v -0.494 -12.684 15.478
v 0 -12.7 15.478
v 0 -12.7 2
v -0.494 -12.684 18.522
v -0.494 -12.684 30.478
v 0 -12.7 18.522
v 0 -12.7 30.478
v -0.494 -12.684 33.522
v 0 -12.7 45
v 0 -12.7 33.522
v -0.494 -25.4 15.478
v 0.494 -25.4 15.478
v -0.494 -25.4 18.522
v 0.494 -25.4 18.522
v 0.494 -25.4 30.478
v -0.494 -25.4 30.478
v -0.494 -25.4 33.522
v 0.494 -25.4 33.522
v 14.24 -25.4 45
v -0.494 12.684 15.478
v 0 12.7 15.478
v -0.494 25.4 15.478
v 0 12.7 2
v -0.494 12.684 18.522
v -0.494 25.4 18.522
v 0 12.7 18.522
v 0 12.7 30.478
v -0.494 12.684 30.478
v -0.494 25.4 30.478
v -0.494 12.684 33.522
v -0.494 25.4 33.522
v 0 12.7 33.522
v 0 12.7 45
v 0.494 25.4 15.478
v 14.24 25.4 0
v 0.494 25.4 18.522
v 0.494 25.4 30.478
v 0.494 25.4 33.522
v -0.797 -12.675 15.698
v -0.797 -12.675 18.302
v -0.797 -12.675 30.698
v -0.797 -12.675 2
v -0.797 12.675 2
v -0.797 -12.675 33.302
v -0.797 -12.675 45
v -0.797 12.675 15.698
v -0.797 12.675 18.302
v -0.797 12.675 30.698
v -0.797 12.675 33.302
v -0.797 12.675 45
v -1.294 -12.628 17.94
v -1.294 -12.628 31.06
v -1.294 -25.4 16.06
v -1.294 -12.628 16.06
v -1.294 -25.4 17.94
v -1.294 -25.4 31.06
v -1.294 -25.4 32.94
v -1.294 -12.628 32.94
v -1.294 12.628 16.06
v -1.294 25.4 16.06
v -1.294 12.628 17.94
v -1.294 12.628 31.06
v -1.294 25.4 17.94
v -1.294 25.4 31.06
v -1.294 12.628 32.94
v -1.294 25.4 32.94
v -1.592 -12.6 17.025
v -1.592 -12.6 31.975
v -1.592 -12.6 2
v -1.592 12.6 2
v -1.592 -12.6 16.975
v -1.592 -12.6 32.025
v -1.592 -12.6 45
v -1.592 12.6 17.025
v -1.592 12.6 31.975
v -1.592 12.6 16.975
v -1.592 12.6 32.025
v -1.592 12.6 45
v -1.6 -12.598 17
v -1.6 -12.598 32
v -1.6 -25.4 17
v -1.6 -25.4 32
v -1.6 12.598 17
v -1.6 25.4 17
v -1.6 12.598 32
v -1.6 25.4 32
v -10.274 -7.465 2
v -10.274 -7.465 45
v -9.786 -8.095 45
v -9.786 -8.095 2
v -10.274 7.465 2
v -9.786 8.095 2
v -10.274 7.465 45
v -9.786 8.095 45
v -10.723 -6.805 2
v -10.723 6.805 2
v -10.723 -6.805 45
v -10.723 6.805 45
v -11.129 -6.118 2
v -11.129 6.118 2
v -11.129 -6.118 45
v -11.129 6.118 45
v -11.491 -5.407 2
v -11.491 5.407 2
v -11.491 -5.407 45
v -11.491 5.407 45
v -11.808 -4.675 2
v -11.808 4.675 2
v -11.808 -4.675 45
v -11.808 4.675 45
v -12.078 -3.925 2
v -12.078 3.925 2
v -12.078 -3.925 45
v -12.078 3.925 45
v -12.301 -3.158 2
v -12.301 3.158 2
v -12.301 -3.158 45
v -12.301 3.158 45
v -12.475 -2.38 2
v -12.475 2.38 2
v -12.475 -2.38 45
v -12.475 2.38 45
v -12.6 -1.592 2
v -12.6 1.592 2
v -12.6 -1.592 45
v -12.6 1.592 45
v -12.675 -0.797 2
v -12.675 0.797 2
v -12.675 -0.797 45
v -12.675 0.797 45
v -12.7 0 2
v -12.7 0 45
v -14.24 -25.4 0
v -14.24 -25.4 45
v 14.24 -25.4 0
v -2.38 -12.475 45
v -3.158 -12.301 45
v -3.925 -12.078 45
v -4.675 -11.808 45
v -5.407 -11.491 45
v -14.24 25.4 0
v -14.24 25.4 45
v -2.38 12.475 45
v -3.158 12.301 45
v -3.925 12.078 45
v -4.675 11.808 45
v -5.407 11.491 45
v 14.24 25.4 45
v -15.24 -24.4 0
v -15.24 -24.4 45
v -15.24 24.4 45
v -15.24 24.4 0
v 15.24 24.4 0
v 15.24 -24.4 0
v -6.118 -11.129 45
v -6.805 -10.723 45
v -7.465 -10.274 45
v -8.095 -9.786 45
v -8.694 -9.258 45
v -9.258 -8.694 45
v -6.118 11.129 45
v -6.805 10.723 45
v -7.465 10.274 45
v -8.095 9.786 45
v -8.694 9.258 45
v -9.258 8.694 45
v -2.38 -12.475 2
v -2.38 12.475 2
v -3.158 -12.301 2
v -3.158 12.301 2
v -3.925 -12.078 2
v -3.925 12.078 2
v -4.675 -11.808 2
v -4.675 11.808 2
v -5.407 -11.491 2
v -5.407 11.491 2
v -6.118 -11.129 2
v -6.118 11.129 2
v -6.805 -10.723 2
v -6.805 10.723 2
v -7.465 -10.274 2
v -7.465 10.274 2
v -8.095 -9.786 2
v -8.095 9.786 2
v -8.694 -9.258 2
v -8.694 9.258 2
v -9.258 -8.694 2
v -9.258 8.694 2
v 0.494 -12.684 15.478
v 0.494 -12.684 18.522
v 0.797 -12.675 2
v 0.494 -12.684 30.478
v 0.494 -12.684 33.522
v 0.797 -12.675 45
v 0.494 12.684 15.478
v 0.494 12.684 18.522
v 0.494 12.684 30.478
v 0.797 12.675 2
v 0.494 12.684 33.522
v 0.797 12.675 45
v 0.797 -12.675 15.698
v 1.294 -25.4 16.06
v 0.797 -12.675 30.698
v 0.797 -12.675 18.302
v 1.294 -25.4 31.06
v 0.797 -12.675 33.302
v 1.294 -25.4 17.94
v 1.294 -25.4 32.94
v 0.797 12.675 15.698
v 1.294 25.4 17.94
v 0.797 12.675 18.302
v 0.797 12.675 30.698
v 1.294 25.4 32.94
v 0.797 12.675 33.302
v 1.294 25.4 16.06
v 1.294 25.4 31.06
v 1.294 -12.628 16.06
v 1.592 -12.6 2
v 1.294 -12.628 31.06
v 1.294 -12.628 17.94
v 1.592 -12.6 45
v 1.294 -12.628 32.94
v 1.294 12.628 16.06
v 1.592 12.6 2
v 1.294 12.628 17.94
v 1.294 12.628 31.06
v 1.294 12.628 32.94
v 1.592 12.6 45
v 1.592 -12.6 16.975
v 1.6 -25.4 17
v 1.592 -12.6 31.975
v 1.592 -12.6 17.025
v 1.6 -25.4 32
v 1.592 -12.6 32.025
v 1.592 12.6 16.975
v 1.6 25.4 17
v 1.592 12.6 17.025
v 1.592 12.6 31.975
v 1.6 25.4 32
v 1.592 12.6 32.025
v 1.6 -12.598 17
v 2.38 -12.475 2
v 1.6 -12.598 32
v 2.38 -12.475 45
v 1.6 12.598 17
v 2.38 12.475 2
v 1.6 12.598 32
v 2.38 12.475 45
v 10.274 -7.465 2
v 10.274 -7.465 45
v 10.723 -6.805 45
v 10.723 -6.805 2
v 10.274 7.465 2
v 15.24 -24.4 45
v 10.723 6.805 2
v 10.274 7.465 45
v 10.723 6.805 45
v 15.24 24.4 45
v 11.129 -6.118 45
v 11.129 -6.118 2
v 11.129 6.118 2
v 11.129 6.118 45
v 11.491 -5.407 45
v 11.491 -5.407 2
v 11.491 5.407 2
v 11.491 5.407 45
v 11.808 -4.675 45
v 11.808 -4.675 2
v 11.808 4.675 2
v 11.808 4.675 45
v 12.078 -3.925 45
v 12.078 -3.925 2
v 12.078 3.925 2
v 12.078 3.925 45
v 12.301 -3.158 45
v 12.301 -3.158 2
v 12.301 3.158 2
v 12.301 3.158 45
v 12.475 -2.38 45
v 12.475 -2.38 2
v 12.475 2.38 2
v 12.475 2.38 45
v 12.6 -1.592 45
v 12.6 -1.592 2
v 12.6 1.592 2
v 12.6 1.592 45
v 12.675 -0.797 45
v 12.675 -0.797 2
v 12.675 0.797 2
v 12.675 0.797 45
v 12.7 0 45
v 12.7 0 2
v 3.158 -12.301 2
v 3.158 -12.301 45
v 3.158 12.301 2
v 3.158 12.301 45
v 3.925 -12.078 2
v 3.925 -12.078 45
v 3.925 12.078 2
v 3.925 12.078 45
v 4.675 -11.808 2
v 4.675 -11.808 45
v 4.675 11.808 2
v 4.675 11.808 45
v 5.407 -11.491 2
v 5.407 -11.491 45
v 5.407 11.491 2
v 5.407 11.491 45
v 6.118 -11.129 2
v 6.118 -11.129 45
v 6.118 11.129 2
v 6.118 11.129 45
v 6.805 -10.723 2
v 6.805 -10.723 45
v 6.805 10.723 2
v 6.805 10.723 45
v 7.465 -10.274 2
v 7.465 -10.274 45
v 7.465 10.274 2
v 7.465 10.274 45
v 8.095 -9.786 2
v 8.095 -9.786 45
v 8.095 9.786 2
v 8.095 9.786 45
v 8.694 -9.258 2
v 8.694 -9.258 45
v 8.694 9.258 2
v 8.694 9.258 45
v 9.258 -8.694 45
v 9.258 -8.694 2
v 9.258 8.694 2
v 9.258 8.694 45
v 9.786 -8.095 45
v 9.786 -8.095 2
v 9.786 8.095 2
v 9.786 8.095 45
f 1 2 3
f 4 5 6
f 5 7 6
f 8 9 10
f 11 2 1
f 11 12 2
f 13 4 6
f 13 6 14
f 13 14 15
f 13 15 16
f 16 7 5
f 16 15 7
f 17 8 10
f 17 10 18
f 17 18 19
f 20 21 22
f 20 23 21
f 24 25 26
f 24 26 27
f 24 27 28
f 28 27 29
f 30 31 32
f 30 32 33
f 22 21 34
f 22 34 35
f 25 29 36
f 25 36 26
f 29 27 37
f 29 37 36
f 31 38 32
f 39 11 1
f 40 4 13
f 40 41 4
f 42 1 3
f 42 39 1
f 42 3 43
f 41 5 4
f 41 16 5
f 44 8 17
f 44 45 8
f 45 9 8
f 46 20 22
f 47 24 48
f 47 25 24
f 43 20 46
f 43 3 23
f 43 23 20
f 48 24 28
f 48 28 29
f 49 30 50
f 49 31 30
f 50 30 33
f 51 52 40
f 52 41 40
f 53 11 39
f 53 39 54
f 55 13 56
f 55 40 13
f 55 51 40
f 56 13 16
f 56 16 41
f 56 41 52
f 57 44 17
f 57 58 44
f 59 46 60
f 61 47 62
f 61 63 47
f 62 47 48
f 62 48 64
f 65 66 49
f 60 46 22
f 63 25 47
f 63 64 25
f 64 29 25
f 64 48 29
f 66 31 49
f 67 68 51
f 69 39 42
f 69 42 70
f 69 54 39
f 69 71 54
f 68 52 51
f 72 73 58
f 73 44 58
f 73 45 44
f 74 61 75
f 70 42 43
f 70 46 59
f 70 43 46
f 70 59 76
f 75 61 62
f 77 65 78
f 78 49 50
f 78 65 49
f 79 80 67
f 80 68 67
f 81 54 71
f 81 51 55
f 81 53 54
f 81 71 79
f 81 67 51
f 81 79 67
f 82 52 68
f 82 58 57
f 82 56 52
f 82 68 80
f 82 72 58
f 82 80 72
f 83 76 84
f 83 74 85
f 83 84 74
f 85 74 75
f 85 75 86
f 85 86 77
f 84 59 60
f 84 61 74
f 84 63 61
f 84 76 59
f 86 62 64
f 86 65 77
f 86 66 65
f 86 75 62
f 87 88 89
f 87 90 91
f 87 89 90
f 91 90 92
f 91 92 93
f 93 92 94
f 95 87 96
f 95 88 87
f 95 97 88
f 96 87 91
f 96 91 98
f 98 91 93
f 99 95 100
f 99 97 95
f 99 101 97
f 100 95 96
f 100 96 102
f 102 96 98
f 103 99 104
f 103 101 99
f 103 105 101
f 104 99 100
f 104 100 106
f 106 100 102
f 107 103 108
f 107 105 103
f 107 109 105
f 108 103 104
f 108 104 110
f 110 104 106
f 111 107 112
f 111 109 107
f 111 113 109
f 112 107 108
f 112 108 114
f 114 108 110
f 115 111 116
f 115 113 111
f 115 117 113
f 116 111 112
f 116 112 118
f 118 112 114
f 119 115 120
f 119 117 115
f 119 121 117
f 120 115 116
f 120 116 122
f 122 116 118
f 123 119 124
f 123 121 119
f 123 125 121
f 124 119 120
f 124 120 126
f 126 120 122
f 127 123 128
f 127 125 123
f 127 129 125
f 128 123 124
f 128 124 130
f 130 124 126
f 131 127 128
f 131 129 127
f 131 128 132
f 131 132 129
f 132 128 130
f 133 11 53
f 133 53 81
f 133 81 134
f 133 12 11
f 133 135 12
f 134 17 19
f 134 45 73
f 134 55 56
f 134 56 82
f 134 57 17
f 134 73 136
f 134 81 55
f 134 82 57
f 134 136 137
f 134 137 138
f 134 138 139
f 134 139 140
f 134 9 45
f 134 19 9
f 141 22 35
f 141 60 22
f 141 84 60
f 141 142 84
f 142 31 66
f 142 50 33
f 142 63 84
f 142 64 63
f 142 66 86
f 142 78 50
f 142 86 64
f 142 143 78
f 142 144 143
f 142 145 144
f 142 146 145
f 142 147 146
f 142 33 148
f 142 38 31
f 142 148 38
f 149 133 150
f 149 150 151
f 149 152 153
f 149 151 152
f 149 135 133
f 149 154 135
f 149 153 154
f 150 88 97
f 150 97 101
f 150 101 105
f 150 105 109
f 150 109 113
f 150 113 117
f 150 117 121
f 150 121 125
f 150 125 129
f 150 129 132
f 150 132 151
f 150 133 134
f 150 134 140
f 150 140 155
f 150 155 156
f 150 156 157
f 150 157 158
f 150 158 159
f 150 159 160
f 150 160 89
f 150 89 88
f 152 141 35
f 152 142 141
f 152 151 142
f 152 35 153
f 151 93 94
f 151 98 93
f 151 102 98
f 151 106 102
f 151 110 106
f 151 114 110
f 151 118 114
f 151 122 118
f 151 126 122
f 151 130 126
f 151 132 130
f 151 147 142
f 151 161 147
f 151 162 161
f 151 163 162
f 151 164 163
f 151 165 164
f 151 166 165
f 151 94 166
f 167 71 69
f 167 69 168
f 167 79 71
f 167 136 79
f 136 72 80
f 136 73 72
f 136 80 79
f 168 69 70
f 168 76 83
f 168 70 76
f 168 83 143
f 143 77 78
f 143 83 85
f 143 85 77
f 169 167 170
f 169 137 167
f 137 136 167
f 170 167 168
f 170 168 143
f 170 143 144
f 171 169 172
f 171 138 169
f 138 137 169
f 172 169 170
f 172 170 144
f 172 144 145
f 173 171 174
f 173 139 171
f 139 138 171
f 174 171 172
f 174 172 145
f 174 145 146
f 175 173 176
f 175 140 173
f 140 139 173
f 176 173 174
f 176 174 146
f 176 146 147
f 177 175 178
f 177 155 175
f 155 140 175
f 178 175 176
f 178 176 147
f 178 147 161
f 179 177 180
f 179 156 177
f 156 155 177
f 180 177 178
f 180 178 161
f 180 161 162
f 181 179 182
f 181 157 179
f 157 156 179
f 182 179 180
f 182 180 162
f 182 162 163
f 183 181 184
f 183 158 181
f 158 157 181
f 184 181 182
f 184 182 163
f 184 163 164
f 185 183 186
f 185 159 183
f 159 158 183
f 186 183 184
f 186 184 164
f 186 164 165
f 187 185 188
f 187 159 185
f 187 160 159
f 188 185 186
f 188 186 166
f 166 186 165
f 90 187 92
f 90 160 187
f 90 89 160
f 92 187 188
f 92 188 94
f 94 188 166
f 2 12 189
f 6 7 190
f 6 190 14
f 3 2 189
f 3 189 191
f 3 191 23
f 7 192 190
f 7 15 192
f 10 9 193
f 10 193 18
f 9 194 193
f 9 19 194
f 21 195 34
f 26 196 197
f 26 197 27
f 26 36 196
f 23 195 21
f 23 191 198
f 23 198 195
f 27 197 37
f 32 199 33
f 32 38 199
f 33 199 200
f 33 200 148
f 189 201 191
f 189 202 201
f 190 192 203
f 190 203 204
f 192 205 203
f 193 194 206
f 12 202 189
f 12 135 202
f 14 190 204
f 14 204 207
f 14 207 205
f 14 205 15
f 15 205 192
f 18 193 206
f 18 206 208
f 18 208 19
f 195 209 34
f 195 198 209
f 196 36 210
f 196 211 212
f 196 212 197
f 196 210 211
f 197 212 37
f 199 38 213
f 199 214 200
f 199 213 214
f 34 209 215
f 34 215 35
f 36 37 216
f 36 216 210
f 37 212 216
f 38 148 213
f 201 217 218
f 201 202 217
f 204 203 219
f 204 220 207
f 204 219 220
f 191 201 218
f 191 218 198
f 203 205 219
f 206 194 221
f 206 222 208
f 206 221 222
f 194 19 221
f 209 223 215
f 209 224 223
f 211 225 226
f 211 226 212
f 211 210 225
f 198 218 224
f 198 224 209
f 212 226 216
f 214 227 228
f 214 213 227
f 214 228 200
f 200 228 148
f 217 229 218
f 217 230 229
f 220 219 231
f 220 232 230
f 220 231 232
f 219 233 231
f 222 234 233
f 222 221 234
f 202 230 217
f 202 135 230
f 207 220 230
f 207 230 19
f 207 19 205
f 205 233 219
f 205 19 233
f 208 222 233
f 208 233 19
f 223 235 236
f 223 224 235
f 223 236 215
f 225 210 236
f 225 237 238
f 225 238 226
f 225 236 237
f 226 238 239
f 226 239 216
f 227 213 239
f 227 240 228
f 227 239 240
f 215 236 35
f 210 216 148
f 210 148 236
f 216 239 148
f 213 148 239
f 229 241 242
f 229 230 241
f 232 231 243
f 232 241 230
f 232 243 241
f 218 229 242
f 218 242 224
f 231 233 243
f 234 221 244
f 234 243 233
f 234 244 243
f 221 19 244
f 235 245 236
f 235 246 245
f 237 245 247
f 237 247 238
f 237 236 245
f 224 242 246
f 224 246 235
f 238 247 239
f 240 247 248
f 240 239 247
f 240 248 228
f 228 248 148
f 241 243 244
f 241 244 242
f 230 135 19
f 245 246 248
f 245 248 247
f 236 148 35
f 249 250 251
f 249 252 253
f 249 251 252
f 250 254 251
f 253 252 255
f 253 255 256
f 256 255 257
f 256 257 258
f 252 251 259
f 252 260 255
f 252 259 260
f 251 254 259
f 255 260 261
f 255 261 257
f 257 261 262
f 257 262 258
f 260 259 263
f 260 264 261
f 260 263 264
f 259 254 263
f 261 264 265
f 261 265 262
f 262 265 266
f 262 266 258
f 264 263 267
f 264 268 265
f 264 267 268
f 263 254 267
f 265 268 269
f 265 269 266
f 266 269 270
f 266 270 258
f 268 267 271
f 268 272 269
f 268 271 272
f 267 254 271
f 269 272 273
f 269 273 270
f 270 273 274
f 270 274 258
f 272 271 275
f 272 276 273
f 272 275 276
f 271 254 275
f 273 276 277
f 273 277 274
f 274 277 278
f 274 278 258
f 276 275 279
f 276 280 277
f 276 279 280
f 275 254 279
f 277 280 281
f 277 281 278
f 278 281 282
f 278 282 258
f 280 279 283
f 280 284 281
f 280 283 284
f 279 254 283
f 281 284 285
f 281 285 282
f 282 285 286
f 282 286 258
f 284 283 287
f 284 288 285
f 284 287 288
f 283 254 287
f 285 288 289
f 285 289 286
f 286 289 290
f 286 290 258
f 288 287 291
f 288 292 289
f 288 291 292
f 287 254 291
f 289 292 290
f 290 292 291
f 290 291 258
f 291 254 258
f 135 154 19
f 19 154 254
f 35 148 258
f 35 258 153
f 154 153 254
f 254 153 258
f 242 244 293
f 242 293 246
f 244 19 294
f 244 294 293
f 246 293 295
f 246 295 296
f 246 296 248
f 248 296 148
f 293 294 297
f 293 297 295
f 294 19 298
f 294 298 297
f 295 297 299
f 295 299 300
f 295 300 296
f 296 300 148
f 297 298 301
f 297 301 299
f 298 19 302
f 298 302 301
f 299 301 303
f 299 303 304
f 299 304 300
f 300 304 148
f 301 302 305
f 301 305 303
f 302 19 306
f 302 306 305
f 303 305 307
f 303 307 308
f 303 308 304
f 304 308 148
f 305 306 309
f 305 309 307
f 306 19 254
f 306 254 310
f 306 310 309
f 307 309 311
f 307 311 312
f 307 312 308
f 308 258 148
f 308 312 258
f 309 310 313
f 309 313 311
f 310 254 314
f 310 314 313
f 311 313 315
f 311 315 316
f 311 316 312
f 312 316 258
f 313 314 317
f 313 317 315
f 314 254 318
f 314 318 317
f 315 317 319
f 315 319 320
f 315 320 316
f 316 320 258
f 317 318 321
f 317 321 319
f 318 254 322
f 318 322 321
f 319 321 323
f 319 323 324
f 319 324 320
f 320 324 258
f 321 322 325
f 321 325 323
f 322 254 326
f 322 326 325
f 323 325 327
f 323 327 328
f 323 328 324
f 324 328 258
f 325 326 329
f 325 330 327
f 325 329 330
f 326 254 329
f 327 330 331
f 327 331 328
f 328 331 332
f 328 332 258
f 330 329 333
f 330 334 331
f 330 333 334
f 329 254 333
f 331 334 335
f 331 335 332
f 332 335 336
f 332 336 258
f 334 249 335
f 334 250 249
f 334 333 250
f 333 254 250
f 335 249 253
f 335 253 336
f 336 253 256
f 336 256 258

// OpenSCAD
// file: ../../666_1006.scad
//improving rendering speed.
draft = true;   // sets rendering quality to draft.
$fs = draft ? 5 : 0.5;
$fa = 10;


module 666_1006(height = 45, height_of_mini_cylinder = 2, draft = true)
{
	difference ()
    {

        union ()    // top cap 
        {   

            cylinder(h = height, d = main_tube_inner_diameter, $fn = draft ? 100 : 200);
            cylinder(h = height_of_mini_cylinder, d2 = main_tube_outer_diameter, d1 = main_tube_inner_diameter, $fn = draft ? 100 : 200);
        }


        translate([0,0, -global_clearance/2])
            cylinder (h= height + global_clearance, d = tube_for_undercarriage_outer_diameter, $fn = draft ? 50 : 100);

        //screw
        translate([-main_tube_inner_diameter/2 - global_clearance/2, 0, height/3 + height_of_mini_cylinder])
            rotate([0,90,0])
                cylinder(h = main_tube_inner_diameter + global_clearance, d = M3_screw_diameter, $fn = draft ? 10 : 20);

        //screw
        translate([-main_tube_inner_diameter/2 - global_clearance/2, 0, height - height/3 + height_of_mini_cylinder])
            rotate([0,90,0])
                cylinder(h = main_tube_inner_diameter + global_clearance, d = M3_screw_diameter, $fn = draft ? 10 : 20);
     }
}



module 666_1006_drillhelper(height = 45, height_of_mini_cylinder = 2)
{
    difference (){

    translate([-(main_tube_outer_diameter + 2* thickness_between_tubes)/2,- main_tube_outer_diameter,0])
        cube ([main_tube_outer_diameter + 2*thickness_between_tubes,2*main_tube_outer_diameter,height]);
            
    //tube
    translate([0,0,height_of_mini_cylinder])
            cylinder(h=height + global_clearance,r = main_tube_outer_diameter/2,$fn = draft ? 100 : 200);

    //screw
    translate([0,main_tube_outer_diameter + global_clearance/2,height/3 + height_of_mini_cylinder])
        rotate([90,0,0])
            cylinder(h = 2 * main_tube_outer_diameter + global_clearance, r = M3_screw_diameter/2, $fn = draft ? 10 : 20);

    //screw
    translate([0,main_tube_outer_diameter + global_clearance/2,height - height/3 + height_of_mini_cylinder])
        rotate([90,0,0])
            cylinder(h = 2 * main_tube_outer_diameter + global_clearance, r = M3_screw_diameter/2, $fn = draft ? 10 : 20);

    //bevelled edge
    translate([(main_tube_outer_diameter + 2*thickness_between_tubes)/2, main_tube_outer_diameter - 1,- global_clearance/2])
        rotate([0,0,45])
            cube([main_tube_outer_diameter,main_tube_outer_diameter,height + global_clearance]);

    mirror ([1,0,0])
        translate([(main_tube_outer_diameter + 2*thickness_between_tubes)/2, main_tube_outer_diameter - 1,- global_clearance/2])
            rotate([0,0,45])
                cube([main_tube_outer_diameter,main_tube_outer_diameter,height + global_clearance]);


    mirror([0,1,0])
        translate([(main_tube_outer_diameter + 2*thickness_between_tubes)/2, main_tube_outer_diameter - 1,- global_clearance/2])
            rotate([0,0,45])
                cube([main_tube_outer_diameter,main_tube_outer_diameter,height + global_clearance]);


    mirror ([1,0,0])
        mirror([0,1,0])
            translate([(main_tube_outer_diameter + 2*thickness_between_tubes)/2, main_tube_outer_diameter - 1,- global_clearance/2])
                rotate([0,0,45])
                    cube([main_tube_outer_diameter,main_tube_outer_diameter,height + global_clearance]);
    //final difference
    }
//final module    
}


rotate([0,0,90])
    666_1006();

translate([2*main_tube_outer_diameter,0,0])
    666_1006_drillhelper();


include <../parameters.scad>
// main file
include <../../../parameters.scad>

use <../../666_1006.scad>

draft = false;

666_1006_drillhelper();
